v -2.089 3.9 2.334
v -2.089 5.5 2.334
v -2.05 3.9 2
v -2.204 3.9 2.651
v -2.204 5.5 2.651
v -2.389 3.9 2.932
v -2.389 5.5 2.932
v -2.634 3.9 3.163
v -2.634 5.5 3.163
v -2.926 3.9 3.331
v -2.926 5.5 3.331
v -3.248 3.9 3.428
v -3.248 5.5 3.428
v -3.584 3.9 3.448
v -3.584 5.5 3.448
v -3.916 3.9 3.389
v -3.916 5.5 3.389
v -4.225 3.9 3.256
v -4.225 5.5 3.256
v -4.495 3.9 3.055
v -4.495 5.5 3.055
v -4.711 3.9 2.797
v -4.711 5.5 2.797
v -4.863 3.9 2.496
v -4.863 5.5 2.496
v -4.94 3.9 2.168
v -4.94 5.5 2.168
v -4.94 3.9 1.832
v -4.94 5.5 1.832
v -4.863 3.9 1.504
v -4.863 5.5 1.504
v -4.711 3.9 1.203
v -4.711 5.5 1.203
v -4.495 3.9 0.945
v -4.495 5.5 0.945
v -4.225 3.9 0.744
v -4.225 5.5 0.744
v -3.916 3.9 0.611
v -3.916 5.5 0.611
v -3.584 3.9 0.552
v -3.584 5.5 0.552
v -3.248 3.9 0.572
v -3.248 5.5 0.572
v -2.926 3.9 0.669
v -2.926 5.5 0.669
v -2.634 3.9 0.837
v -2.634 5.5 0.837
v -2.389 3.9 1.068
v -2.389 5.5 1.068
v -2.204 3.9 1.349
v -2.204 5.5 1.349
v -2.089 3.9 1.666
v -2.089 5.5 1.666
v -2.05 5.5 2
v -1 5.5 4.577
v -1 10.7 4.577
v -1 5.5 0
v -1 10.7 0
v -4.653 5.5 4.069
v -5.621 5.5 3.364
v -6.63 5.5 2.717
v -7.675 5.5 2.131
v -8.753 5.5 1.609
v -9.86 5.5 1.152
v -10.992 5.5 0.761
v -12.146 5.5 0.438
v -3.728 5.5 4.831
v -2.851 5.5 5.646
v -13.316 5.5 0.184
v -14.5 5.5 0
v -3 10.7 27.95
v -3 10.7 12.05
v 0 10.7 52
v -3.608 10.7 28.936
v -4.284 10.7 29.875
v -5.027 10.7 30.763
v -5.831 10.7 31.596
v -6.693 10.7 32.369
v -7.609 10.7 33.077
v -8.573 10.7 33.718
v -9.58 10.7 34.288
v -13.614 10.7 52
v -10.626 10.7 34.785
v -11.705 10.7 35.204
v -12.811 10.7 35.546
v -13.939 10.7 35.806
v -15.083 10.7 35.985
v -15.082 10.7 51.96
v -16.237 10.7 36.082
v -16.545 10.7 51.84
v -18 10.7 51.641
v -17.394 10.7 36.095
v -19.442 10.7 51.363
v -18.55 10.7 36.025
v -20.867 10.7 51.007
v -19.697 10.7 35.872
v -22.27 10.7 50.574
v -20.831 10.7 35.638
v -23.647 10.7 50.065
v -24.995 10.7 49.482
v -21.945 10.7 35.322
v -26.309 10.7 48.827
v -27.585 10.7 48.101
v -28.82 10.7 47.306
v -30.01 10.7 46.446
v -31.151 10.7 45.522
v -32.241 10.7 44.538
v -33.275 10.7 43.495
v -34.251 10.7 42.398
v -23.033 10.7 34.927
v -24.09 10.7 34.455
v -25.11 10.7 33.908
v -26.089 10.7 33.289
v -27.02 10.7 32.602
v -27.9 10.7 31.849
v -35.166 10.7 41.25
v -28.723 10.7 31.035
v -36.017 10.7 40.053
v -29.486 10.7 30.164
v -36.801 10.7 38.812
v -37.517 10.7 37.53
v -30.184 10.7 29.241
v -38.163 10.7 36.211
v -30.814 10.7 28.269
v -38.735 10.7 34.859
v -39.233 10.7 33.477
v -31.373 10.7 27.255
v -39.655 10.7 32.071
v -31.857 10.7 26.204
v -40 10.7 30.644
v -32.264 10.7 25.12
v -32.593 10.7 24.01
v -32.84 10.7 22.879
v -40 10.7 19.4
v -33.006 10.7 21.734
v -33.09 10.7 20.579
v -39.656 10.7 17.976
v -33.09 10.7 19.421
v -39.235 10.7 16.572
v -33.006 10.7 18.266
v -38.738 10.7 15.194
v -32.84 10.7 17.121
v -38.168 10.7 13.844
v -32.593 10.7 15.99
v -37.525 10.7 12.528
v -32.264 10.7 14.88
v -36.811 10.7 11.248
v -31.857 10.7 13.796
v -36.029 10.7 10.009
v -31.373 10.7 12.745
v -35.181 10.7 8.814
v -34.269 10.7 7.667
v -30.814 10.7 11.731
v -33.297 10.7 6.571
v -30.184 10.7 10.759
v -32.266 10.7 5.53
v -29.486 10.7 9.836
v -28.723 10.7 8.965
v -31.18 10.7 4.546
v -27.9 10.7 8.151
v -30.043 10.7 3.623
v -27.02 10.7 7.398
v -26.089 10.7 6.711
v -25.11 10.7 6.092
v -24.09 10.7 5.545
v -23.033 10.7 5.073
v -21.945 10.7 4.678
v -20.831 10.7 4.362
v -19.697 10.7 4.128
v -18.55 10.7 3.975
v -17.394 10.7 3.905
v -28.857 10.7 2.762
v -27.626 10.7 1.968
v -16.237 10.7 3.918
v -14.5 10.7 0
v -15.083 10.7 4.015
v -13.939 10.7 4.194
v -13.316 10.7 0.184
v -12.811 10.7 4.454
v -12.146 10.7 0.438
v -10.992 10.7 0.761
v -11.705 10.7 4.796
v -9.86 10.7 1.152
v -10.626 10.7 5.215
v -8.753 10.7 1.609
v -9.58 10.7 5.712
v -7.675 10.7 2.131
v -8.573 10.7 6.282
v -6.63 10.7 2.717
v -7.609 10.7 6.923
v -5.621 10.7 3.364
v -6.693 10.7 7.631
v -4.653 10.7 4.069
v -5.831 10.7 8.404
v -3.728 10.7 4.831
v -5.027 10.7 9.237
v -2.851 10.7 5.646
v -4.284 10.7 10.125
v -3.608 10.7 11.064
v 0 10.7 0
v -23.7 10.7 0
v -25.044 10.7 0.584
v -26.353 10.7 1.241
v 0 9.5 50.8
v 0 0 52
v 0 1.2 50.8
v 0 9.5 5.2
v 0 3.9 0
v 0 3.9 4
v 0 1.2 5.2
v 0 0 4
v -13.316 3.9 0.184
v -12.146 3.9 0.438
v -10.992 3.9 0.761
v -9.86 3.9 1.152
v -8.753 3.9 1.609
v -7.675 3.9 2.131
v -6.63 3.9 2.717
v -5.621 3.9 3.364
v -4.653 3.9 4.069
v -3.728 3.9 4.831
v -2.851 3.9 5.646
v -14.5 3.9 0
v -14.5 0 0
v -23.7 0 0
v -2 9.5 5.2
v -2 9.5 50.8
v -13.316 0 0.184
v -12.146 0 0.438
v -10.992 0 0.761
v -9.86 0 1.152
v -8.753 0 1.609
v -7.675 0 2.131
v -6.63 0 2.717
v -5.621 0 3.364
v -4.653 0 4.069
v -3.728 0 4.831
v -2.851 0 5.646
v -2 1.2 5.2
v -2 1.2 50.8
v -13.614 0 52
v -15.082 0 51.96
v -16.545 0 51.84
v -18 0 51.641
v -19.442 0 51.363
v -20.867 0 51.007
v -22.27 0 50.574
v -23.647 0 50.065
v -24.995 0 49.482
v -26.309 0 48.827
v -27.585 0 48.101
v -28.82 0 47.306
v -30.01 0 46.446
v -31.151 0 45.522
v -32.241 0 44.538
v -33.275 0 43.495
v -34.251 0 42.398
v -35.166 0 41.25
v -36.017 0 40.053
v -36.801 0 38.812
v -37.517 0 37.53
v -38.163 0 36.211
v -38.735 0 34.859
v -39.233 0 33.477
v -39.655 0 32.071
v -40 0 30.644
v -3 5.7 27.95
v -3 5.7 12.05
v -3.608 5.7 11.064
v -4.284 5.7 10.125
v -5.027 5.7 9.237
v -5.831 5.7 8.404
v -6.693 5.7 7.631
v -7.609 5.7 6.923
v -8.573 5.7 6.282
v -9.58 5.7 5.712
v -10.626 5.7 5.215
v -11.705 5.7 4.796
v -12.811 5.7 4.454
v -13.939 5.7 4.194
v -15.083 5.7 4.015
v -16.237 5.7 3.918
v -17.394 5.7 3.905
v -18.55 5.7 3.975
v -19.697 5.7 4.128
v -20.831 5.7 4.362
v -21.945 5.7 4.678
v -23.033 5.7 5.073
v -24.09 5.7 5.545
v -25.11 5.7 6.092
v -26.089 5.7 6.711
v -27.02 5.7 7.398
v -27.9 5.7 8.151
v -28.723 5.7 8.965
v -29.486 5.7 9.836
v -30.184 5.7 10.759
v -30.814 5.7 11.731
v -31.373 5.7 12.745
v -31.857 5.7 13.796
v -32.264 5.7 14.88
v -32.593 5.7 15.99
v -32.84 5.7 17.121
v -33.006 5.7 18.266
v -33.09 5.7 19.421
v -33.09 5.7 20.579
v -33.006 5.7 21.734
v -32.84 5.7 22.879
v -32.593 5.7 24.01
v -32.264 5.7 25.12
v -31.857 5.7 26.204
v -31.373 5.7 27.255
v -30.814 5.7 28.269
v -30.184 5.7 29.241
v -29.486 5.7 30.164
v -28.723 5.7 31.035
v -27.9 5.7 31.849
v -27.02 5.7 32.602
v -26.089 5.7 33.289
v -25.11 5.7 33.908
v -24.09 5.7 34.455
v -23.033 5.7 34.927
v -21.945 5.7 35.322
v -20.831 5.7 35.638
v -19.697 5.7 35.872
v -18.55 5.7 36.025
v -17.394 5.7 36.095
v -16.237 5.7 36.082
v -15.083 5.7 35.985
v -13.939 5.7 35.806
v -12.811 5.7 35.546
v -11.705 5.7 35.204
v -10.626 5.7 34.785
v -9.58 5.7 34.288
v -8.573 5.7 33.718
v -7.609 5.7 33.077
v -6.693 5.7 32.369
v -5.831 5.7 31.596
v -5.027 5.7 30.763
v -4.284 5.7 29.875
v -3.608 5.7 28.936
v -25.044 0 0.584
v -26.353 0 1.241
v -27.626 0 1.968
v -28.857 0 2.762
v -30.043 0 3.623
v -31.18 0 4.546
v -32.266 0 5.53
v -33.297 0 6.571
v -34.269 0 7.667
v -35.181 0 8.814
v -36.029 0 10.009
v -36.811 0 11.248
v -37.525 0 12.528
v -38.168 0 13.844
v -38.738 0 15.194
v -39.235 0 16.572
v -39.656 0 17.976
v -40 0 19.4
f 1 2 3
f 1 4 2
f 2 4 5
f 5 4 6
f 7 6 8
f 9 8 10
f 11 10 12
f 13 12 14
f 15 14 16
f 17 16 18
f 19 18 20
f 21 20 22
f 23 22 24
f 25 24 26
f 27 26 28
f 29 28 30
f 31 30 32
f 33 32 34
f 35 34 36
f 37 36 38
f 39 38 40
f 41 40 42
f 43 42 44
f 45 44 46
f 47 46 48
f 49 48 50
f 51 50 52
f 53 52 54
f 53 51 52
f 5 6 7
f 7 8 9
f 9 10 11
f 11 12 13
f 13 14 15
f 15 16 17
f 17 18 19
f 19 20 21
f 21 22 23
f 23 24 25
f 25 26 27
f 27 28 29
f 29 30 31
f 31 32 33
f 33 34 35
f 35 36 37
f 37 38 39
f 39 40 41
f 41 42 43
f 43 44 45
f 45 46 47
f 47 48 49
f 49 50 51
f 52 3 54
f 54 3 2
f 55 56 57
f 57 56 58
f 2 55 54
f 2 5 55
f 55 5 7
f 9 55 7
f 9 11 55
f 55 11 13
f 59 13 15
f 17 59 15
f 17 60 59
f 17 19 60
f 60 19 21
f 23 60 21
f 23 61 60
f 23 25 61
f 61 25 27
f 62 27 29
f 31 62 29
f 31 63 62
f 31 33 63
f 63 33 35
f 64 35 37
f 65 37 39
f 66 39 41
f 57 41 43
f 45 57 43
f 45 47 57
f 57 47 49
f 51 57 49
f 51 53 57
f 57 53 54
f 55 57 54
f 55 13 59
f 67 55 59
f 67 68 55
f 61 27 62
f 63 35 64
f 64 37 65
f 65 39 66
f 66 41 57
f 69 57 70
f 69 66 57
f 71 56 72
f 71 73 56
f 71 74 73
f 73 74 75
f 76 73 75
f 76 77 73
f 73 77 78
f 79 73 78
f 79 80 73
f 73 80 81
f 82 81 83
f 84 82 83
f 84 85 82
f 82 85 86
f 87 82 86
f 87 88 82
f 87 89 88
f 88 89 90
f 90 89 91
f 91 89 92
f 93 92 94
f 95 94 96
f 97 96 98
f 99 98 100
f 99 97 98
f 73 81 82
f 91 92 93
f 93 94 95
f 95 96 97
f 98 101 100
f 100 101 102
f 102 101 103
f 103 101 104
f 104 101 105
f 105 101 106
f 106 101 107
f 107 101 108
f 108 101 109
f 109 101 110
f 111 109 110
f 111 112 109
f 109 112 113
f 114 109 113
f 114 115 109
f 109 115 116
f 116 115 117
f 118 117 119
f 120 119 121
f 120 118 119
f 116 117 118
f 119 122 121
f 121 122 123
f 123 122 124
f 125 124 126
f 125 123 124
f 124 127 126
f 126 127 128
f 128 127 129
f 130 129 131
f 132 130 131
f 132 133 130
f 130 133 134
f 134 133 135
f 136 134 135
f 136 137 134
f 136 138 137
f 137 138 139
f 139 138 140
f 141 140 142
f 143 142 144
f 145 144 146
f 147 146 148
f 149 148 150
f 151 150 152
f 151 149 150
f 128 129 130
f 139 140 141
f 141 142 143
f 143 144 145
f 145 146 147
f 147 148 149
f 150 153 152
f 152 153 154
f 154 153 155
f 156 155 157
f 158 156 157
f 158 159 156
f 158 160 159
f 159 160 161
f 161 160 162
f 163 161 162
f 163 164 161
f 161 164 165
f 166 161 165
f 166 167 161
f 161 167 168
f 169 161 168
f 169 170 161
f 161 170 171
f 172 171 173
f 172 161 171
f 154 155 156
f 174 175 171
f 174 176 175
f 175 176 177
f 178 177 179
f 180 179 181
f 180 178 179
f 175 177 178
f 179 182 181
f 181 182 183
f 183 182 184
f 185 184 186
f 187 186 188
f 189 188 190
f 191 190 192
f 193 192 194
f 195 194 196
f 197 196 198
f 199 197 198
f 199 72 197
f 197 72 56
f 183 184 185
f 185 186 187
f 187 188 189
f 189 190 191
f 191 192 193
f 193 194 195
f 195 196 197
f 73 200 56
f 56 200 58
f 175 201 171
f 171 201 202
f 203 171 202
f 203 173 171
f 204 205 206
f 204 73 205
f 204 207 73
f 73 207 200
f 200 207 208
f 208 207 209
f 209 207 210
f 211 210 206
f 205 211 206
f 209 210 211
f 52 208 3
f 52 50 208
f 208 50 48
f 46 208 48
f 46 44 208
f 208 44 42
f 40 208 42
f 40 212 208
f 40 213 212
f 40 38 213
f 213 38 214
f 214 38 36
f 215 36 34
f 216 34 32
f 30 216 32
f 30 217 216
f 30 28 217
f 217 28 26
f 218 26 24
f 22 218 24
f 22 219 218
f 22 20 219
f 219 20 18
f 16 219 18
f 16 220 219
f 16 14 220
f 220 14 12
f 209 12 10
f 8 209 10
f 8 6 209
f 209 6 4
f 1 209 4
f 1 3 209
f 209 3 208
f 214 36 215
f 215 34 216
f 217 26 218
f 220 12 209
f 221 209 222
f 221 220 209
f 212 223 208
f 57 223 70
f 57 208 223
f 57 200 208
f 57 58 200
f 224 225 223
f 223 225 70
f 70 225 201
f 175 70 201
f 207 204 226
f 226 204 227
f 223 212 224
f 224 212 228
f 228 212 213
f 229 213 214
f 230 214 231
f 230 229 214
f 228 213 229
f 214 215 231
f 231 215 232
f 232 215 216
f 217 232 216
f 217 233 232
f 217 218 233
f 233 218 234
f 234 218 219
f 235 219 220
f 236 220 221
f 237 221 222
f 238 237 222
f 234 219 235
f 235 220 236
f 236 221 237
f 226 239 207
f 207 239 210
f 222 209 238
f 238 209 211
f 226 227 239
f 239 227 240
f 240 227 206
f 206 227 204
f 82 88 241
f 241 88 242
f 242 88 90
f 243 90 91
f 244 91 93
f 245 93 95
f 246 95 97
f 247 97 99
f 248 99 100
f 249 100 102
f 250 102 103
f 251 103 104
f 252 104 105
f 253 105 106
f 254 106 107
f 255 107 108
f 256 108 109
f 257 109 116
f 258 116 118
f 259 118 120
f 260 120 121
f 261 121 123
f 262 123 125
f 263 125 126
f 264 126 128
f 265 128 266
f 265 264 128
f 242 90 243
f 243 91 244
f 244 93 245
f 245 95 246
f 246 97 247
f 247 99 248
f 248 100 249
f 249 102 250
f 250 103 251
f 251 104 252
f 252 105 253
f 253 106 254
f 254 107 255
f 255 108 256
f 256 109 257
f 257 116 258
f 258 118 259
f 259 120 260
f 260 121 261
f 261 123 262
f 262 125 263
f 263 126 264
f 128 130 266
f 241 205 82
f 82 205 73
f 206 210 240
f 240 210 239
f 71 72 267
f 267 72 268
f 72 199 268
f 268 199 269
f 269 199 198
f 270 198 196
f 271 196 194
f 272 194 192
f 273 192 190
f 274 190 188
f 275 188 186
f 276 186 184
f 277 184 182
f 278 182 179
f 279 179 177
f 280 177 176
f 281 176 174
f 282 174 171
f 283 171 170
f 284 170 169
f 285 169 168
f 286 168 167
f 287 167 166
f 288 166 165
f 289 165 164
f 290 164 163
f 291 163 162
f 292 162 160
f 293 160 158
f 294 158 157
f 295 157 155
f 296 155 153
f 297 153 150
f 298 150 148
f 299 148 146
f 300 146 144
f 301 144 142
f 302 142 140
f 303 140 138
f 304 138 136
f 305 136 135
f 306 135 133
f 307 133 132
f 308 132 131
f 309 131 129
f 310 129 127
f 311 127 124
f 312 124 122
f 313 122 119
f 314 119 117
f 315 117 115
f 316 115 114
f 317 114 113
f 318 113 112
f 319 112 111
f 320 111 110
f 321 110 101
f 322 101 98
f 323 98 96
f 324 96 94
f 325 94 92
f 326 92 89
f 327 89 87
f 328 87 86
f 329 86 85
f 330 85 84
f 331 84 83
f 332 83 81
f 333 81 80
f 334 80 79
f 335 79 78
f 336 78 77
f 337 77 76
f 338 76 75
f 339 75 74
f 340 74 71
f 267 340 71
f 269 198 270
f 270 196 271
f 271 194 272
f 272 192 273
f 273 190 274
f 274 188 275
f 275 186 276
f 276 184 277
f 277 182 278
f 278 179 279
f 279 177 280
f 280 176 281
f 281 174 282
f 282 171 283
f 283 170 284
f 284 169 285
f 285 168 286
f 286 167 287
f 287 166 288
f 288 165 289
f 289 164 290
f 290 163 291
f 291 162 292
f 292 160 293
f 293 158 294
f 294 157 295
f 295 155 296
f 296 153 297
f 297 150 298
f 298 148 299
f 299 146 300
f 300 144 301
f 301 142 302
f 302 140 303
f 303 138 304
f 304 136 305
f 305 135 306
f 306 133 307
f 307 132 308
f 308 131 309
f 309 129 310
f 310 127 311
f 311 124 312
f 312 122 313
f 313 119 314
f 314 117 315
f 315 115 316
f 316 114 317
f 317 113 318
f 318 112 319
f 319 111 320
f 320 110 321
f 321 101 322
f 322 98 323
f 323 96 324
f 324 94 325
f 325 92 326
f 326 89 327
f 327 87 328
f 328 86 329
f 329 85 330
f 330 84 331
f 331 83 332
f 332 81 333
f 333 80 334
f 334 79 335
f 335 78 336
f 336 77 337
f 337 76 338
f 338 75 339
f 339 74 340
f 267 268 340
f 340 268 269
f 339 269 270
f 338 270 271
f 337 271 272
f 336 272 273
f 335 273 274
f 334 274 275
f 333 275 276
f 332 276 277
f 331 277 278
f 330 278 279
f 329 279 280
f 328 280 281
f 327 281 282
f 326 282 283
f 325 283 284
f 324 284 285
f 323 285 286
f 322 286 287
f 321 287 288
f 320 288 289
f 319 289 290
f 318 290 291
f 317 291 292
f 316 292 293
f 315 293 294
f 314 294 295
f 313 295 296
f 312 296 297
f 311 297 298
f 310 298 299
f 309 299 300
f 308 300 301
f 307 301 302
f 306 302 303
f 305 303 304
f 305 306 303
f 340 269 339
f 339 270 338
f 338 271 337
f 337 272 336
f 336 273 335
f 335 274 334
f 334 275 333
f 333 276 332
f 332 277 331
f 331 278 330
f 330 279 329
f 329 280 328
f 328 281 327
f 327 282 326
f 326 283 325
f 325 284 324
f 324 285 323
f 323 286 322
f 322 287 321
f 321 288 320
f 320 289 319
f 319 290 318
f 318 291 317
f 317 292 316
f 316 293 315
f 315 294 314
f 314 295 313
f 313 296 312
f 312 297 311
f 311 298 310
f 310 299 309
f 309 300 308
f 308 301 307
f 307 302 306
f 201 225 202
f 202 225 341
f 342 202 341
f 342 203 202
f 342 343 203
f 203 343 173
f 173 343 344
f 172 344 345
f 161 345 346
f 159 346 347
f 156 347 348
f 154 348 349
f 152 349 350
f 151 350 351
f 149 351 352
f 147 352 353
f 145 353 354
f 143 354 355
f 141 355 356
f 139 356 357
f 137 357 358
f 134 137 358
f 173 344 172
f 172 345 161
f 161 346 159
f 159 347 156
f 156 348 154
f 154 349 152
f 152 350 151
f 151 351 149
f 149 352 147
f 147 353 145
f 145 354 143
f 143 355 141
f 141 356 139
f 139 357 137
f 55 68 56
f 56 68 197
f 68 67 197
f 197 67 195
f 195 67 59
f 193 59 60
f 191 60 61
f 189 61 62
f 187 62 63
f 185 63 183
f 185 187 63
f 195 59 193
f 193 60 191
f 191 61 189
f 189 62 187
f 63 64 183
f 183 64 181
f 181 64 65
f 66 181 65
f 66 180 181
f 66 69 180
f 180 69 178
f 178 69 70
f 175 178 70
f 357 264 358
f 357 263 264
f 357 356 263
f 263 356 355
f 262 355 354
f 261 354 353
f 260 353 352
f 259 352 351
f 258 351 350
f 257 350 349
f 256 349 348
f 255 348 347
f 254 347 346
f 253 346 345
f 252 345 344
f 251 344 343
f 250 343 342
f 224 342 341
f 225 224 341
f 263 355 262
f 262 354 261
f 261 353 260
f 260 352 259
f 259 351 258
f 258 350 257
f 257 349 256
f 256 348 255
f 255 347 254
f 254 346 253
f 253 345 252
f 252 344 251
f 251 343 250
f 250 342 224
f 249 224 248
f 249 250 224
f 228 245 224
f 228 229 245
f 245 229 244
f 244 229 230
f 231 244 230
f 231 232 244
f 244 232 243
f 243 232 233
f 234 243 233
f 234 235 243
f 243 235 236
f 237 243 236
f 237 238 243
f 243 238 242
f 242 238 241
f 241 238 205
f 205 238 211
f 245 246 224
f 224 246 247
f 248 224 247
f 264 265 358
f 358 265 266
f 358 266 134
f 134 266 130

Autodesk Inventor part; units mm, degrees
ref_plane "YZ Plane" through (0, 0, 0) normal (1, 0, 0) x (0, 1, 0)
ref_plane "XZ Plane" through (0, 0, 0) normal (0, 1, 0) x (-1, 0, 0)
ref_plane "XY Plane" through (0, 0, 0) normal (0, 0, 1) x (1, 0, 0)
sketch "Sketch1" plane through (0, 0, 0) normal (0, 1, 0) x (-1, 0, 0)
  line L0 (0, 0) -> (40, 0)
  line L1 (40, 0) -> (40, 52)
  line L2 (40, 52) -> (0, 52)
  line L3 (0, 52) -> (0, 0)
  dimension "d0" = 40
  dimension "d1" = 52
extrude "Extrusion1" add sketch "Sketch1" along normal blind 10.7
sketch "Sketch2" plane through (0, 10.7, 0) normal (0, 1, 0) x (1, 0, 0)
  line L0 (0, 0) -> (-40, 0)
  line L1 (-40, 0) -> (-40, -52)
  line L2 (-40, -52) -> (0, -52)
  line L3 (0, -52) -> (0, 0)
  arc A0 (-23.7, 0) -> (-40, -19.4) centre (-13.6141, -25.0219) ccw
  line L4 (-40, -19.4) -> (0, -19.4) construction
  arc A1 (-40, -30.6438) -> (-13.6141, -52) centre (-13.6141, -25.0219) ccw
  arc A2 (-40, -19.4) -> (-40, -30.6438) centre (-13.6141, -25.0219) ccw
  arc A3 (0, -9.1718) -> (-14.5, 0) centre (-17, -20) ccw
  line L5 (0, -4) -> (-2.8506, -5.6458)
  dimension "d8" = 16.3
  dimension "d9" = 19.4
  dimension "d12" = 20
  dimension "d13" = 17
  dimension "d14" = 14.5
  dimension "d15" = 4
  dimension "d16" = 30
extrude "Extrusion2" cut sketch "Sketch2" against normal through all contours L3 L5 A3 L0 | A0 L1 L0 | A1 L2 L1
sketch "Sketch4" plane through (0, 10.7, 0) normal (0, 1, 0) x (1, 0, 0)
  line L0 (0, -52) -> (0, -4)
  arc A0 (-2.8506, -5.6458) -> (-14.5, 0) centre (-17, -20) ccw
  line L1 (-14.5, 0) -> (-23.7, 0)
  circle A1 centre (-17, -20) radius 16.1
  line L2 (-3, -12.0495) -> (-3, -27.9505)
  point P0 (0, 0)
  dimension "d17" = 32.2
  dimension "d18" = 3
extrude "Extrusion3" cut sketch "Sketch4" against normal blind 5 contours L2 A1 picked at (-14.3987, -21.2686)
sketch "Sketch5" plane through (0, 0, 52) normal (1, 0, 0) x (0, 0, -1)
  line L0 (48, 0) -> (48, 10.7)
  line L1 (0, 10.7) -> (48, 10.7)
  line L2 (0, 0) -> (0, 10.7)
  line L3 (0, 0) -> (48, 0)
  line L4 (46.8, 9.5) -> (46.8, 1.2)
  line L5 (46.8, 1.2) -> (1.2, 1.2)
  line L6 (1.2, 1.2) -> (1.2, 9.5)
  line L7 (1.2, 9.5) -> (46.8, 9.5)
  point P0 (52, 0)
  dimension "d21" = 1.2
extrude "Extrusion4" cut sketch "Sketch5" against normal blind 2 contours L4 L5 L6 L7
sketch "Sketch6" plane through (-14.5, 0, 0) normal (0, 0, -1) x (-1, 0, 0)
  line L0 (0, 10.7) -> (9.2, 10.7)
  line L1 (-11.6494, 0) -> (-14.5, 0)
  line L2 (-11.6494, 10.7) -> (-11.6494, 0)
  line L3 (-14.5, 10.7) -> (-11.6494, 10.7)
  line L4 (-14.5, 0) -> (-14.5, 10.7)
  line L5 (0, 0) -> (-11.6494, 0)
  line L6 (0, 10.7) -> (0, 0)
  line L7 (-11.6494, 10.7) -> (0, 10.7)
  line L8 (-11.6494, 10.7) -> (-11.6494, 0)
  line L9 (0, 3.9) -> (-14.5, 3.9)
  line L10 (0, 5.5) -> (-13.5, 5.5)
  line L11 (-13.5, 5.5) -> (-13.5, 10.7)
  dimension "d24" = 1
  dimension "d25" = 1.6
  dimension "d26" = 3.9
extrude "Extrusion5" add sketch "Sketch6" against normal up to next contours L9 L4 L3 L11 L10 L2 | L2 L10 L6 L9
sketch "Sketch7" plane through (-14.5, 5.5, 0) normal (0, 1, 0) x (1, 0, 0)
  line L0 (0, 0) -> (13.5, 0)
  circle A0 centre (11, -2) radius 1.45
  line L1 (14.5, 0) -> (14.5, -4)
  dimension "d29" = 2.9
  dimension "d30" = 3.5
  dimension "d31" = 2
extrude "Extrusion6" cut sketch "Sketch7" against normal through all
properties part number "Ventilador"
